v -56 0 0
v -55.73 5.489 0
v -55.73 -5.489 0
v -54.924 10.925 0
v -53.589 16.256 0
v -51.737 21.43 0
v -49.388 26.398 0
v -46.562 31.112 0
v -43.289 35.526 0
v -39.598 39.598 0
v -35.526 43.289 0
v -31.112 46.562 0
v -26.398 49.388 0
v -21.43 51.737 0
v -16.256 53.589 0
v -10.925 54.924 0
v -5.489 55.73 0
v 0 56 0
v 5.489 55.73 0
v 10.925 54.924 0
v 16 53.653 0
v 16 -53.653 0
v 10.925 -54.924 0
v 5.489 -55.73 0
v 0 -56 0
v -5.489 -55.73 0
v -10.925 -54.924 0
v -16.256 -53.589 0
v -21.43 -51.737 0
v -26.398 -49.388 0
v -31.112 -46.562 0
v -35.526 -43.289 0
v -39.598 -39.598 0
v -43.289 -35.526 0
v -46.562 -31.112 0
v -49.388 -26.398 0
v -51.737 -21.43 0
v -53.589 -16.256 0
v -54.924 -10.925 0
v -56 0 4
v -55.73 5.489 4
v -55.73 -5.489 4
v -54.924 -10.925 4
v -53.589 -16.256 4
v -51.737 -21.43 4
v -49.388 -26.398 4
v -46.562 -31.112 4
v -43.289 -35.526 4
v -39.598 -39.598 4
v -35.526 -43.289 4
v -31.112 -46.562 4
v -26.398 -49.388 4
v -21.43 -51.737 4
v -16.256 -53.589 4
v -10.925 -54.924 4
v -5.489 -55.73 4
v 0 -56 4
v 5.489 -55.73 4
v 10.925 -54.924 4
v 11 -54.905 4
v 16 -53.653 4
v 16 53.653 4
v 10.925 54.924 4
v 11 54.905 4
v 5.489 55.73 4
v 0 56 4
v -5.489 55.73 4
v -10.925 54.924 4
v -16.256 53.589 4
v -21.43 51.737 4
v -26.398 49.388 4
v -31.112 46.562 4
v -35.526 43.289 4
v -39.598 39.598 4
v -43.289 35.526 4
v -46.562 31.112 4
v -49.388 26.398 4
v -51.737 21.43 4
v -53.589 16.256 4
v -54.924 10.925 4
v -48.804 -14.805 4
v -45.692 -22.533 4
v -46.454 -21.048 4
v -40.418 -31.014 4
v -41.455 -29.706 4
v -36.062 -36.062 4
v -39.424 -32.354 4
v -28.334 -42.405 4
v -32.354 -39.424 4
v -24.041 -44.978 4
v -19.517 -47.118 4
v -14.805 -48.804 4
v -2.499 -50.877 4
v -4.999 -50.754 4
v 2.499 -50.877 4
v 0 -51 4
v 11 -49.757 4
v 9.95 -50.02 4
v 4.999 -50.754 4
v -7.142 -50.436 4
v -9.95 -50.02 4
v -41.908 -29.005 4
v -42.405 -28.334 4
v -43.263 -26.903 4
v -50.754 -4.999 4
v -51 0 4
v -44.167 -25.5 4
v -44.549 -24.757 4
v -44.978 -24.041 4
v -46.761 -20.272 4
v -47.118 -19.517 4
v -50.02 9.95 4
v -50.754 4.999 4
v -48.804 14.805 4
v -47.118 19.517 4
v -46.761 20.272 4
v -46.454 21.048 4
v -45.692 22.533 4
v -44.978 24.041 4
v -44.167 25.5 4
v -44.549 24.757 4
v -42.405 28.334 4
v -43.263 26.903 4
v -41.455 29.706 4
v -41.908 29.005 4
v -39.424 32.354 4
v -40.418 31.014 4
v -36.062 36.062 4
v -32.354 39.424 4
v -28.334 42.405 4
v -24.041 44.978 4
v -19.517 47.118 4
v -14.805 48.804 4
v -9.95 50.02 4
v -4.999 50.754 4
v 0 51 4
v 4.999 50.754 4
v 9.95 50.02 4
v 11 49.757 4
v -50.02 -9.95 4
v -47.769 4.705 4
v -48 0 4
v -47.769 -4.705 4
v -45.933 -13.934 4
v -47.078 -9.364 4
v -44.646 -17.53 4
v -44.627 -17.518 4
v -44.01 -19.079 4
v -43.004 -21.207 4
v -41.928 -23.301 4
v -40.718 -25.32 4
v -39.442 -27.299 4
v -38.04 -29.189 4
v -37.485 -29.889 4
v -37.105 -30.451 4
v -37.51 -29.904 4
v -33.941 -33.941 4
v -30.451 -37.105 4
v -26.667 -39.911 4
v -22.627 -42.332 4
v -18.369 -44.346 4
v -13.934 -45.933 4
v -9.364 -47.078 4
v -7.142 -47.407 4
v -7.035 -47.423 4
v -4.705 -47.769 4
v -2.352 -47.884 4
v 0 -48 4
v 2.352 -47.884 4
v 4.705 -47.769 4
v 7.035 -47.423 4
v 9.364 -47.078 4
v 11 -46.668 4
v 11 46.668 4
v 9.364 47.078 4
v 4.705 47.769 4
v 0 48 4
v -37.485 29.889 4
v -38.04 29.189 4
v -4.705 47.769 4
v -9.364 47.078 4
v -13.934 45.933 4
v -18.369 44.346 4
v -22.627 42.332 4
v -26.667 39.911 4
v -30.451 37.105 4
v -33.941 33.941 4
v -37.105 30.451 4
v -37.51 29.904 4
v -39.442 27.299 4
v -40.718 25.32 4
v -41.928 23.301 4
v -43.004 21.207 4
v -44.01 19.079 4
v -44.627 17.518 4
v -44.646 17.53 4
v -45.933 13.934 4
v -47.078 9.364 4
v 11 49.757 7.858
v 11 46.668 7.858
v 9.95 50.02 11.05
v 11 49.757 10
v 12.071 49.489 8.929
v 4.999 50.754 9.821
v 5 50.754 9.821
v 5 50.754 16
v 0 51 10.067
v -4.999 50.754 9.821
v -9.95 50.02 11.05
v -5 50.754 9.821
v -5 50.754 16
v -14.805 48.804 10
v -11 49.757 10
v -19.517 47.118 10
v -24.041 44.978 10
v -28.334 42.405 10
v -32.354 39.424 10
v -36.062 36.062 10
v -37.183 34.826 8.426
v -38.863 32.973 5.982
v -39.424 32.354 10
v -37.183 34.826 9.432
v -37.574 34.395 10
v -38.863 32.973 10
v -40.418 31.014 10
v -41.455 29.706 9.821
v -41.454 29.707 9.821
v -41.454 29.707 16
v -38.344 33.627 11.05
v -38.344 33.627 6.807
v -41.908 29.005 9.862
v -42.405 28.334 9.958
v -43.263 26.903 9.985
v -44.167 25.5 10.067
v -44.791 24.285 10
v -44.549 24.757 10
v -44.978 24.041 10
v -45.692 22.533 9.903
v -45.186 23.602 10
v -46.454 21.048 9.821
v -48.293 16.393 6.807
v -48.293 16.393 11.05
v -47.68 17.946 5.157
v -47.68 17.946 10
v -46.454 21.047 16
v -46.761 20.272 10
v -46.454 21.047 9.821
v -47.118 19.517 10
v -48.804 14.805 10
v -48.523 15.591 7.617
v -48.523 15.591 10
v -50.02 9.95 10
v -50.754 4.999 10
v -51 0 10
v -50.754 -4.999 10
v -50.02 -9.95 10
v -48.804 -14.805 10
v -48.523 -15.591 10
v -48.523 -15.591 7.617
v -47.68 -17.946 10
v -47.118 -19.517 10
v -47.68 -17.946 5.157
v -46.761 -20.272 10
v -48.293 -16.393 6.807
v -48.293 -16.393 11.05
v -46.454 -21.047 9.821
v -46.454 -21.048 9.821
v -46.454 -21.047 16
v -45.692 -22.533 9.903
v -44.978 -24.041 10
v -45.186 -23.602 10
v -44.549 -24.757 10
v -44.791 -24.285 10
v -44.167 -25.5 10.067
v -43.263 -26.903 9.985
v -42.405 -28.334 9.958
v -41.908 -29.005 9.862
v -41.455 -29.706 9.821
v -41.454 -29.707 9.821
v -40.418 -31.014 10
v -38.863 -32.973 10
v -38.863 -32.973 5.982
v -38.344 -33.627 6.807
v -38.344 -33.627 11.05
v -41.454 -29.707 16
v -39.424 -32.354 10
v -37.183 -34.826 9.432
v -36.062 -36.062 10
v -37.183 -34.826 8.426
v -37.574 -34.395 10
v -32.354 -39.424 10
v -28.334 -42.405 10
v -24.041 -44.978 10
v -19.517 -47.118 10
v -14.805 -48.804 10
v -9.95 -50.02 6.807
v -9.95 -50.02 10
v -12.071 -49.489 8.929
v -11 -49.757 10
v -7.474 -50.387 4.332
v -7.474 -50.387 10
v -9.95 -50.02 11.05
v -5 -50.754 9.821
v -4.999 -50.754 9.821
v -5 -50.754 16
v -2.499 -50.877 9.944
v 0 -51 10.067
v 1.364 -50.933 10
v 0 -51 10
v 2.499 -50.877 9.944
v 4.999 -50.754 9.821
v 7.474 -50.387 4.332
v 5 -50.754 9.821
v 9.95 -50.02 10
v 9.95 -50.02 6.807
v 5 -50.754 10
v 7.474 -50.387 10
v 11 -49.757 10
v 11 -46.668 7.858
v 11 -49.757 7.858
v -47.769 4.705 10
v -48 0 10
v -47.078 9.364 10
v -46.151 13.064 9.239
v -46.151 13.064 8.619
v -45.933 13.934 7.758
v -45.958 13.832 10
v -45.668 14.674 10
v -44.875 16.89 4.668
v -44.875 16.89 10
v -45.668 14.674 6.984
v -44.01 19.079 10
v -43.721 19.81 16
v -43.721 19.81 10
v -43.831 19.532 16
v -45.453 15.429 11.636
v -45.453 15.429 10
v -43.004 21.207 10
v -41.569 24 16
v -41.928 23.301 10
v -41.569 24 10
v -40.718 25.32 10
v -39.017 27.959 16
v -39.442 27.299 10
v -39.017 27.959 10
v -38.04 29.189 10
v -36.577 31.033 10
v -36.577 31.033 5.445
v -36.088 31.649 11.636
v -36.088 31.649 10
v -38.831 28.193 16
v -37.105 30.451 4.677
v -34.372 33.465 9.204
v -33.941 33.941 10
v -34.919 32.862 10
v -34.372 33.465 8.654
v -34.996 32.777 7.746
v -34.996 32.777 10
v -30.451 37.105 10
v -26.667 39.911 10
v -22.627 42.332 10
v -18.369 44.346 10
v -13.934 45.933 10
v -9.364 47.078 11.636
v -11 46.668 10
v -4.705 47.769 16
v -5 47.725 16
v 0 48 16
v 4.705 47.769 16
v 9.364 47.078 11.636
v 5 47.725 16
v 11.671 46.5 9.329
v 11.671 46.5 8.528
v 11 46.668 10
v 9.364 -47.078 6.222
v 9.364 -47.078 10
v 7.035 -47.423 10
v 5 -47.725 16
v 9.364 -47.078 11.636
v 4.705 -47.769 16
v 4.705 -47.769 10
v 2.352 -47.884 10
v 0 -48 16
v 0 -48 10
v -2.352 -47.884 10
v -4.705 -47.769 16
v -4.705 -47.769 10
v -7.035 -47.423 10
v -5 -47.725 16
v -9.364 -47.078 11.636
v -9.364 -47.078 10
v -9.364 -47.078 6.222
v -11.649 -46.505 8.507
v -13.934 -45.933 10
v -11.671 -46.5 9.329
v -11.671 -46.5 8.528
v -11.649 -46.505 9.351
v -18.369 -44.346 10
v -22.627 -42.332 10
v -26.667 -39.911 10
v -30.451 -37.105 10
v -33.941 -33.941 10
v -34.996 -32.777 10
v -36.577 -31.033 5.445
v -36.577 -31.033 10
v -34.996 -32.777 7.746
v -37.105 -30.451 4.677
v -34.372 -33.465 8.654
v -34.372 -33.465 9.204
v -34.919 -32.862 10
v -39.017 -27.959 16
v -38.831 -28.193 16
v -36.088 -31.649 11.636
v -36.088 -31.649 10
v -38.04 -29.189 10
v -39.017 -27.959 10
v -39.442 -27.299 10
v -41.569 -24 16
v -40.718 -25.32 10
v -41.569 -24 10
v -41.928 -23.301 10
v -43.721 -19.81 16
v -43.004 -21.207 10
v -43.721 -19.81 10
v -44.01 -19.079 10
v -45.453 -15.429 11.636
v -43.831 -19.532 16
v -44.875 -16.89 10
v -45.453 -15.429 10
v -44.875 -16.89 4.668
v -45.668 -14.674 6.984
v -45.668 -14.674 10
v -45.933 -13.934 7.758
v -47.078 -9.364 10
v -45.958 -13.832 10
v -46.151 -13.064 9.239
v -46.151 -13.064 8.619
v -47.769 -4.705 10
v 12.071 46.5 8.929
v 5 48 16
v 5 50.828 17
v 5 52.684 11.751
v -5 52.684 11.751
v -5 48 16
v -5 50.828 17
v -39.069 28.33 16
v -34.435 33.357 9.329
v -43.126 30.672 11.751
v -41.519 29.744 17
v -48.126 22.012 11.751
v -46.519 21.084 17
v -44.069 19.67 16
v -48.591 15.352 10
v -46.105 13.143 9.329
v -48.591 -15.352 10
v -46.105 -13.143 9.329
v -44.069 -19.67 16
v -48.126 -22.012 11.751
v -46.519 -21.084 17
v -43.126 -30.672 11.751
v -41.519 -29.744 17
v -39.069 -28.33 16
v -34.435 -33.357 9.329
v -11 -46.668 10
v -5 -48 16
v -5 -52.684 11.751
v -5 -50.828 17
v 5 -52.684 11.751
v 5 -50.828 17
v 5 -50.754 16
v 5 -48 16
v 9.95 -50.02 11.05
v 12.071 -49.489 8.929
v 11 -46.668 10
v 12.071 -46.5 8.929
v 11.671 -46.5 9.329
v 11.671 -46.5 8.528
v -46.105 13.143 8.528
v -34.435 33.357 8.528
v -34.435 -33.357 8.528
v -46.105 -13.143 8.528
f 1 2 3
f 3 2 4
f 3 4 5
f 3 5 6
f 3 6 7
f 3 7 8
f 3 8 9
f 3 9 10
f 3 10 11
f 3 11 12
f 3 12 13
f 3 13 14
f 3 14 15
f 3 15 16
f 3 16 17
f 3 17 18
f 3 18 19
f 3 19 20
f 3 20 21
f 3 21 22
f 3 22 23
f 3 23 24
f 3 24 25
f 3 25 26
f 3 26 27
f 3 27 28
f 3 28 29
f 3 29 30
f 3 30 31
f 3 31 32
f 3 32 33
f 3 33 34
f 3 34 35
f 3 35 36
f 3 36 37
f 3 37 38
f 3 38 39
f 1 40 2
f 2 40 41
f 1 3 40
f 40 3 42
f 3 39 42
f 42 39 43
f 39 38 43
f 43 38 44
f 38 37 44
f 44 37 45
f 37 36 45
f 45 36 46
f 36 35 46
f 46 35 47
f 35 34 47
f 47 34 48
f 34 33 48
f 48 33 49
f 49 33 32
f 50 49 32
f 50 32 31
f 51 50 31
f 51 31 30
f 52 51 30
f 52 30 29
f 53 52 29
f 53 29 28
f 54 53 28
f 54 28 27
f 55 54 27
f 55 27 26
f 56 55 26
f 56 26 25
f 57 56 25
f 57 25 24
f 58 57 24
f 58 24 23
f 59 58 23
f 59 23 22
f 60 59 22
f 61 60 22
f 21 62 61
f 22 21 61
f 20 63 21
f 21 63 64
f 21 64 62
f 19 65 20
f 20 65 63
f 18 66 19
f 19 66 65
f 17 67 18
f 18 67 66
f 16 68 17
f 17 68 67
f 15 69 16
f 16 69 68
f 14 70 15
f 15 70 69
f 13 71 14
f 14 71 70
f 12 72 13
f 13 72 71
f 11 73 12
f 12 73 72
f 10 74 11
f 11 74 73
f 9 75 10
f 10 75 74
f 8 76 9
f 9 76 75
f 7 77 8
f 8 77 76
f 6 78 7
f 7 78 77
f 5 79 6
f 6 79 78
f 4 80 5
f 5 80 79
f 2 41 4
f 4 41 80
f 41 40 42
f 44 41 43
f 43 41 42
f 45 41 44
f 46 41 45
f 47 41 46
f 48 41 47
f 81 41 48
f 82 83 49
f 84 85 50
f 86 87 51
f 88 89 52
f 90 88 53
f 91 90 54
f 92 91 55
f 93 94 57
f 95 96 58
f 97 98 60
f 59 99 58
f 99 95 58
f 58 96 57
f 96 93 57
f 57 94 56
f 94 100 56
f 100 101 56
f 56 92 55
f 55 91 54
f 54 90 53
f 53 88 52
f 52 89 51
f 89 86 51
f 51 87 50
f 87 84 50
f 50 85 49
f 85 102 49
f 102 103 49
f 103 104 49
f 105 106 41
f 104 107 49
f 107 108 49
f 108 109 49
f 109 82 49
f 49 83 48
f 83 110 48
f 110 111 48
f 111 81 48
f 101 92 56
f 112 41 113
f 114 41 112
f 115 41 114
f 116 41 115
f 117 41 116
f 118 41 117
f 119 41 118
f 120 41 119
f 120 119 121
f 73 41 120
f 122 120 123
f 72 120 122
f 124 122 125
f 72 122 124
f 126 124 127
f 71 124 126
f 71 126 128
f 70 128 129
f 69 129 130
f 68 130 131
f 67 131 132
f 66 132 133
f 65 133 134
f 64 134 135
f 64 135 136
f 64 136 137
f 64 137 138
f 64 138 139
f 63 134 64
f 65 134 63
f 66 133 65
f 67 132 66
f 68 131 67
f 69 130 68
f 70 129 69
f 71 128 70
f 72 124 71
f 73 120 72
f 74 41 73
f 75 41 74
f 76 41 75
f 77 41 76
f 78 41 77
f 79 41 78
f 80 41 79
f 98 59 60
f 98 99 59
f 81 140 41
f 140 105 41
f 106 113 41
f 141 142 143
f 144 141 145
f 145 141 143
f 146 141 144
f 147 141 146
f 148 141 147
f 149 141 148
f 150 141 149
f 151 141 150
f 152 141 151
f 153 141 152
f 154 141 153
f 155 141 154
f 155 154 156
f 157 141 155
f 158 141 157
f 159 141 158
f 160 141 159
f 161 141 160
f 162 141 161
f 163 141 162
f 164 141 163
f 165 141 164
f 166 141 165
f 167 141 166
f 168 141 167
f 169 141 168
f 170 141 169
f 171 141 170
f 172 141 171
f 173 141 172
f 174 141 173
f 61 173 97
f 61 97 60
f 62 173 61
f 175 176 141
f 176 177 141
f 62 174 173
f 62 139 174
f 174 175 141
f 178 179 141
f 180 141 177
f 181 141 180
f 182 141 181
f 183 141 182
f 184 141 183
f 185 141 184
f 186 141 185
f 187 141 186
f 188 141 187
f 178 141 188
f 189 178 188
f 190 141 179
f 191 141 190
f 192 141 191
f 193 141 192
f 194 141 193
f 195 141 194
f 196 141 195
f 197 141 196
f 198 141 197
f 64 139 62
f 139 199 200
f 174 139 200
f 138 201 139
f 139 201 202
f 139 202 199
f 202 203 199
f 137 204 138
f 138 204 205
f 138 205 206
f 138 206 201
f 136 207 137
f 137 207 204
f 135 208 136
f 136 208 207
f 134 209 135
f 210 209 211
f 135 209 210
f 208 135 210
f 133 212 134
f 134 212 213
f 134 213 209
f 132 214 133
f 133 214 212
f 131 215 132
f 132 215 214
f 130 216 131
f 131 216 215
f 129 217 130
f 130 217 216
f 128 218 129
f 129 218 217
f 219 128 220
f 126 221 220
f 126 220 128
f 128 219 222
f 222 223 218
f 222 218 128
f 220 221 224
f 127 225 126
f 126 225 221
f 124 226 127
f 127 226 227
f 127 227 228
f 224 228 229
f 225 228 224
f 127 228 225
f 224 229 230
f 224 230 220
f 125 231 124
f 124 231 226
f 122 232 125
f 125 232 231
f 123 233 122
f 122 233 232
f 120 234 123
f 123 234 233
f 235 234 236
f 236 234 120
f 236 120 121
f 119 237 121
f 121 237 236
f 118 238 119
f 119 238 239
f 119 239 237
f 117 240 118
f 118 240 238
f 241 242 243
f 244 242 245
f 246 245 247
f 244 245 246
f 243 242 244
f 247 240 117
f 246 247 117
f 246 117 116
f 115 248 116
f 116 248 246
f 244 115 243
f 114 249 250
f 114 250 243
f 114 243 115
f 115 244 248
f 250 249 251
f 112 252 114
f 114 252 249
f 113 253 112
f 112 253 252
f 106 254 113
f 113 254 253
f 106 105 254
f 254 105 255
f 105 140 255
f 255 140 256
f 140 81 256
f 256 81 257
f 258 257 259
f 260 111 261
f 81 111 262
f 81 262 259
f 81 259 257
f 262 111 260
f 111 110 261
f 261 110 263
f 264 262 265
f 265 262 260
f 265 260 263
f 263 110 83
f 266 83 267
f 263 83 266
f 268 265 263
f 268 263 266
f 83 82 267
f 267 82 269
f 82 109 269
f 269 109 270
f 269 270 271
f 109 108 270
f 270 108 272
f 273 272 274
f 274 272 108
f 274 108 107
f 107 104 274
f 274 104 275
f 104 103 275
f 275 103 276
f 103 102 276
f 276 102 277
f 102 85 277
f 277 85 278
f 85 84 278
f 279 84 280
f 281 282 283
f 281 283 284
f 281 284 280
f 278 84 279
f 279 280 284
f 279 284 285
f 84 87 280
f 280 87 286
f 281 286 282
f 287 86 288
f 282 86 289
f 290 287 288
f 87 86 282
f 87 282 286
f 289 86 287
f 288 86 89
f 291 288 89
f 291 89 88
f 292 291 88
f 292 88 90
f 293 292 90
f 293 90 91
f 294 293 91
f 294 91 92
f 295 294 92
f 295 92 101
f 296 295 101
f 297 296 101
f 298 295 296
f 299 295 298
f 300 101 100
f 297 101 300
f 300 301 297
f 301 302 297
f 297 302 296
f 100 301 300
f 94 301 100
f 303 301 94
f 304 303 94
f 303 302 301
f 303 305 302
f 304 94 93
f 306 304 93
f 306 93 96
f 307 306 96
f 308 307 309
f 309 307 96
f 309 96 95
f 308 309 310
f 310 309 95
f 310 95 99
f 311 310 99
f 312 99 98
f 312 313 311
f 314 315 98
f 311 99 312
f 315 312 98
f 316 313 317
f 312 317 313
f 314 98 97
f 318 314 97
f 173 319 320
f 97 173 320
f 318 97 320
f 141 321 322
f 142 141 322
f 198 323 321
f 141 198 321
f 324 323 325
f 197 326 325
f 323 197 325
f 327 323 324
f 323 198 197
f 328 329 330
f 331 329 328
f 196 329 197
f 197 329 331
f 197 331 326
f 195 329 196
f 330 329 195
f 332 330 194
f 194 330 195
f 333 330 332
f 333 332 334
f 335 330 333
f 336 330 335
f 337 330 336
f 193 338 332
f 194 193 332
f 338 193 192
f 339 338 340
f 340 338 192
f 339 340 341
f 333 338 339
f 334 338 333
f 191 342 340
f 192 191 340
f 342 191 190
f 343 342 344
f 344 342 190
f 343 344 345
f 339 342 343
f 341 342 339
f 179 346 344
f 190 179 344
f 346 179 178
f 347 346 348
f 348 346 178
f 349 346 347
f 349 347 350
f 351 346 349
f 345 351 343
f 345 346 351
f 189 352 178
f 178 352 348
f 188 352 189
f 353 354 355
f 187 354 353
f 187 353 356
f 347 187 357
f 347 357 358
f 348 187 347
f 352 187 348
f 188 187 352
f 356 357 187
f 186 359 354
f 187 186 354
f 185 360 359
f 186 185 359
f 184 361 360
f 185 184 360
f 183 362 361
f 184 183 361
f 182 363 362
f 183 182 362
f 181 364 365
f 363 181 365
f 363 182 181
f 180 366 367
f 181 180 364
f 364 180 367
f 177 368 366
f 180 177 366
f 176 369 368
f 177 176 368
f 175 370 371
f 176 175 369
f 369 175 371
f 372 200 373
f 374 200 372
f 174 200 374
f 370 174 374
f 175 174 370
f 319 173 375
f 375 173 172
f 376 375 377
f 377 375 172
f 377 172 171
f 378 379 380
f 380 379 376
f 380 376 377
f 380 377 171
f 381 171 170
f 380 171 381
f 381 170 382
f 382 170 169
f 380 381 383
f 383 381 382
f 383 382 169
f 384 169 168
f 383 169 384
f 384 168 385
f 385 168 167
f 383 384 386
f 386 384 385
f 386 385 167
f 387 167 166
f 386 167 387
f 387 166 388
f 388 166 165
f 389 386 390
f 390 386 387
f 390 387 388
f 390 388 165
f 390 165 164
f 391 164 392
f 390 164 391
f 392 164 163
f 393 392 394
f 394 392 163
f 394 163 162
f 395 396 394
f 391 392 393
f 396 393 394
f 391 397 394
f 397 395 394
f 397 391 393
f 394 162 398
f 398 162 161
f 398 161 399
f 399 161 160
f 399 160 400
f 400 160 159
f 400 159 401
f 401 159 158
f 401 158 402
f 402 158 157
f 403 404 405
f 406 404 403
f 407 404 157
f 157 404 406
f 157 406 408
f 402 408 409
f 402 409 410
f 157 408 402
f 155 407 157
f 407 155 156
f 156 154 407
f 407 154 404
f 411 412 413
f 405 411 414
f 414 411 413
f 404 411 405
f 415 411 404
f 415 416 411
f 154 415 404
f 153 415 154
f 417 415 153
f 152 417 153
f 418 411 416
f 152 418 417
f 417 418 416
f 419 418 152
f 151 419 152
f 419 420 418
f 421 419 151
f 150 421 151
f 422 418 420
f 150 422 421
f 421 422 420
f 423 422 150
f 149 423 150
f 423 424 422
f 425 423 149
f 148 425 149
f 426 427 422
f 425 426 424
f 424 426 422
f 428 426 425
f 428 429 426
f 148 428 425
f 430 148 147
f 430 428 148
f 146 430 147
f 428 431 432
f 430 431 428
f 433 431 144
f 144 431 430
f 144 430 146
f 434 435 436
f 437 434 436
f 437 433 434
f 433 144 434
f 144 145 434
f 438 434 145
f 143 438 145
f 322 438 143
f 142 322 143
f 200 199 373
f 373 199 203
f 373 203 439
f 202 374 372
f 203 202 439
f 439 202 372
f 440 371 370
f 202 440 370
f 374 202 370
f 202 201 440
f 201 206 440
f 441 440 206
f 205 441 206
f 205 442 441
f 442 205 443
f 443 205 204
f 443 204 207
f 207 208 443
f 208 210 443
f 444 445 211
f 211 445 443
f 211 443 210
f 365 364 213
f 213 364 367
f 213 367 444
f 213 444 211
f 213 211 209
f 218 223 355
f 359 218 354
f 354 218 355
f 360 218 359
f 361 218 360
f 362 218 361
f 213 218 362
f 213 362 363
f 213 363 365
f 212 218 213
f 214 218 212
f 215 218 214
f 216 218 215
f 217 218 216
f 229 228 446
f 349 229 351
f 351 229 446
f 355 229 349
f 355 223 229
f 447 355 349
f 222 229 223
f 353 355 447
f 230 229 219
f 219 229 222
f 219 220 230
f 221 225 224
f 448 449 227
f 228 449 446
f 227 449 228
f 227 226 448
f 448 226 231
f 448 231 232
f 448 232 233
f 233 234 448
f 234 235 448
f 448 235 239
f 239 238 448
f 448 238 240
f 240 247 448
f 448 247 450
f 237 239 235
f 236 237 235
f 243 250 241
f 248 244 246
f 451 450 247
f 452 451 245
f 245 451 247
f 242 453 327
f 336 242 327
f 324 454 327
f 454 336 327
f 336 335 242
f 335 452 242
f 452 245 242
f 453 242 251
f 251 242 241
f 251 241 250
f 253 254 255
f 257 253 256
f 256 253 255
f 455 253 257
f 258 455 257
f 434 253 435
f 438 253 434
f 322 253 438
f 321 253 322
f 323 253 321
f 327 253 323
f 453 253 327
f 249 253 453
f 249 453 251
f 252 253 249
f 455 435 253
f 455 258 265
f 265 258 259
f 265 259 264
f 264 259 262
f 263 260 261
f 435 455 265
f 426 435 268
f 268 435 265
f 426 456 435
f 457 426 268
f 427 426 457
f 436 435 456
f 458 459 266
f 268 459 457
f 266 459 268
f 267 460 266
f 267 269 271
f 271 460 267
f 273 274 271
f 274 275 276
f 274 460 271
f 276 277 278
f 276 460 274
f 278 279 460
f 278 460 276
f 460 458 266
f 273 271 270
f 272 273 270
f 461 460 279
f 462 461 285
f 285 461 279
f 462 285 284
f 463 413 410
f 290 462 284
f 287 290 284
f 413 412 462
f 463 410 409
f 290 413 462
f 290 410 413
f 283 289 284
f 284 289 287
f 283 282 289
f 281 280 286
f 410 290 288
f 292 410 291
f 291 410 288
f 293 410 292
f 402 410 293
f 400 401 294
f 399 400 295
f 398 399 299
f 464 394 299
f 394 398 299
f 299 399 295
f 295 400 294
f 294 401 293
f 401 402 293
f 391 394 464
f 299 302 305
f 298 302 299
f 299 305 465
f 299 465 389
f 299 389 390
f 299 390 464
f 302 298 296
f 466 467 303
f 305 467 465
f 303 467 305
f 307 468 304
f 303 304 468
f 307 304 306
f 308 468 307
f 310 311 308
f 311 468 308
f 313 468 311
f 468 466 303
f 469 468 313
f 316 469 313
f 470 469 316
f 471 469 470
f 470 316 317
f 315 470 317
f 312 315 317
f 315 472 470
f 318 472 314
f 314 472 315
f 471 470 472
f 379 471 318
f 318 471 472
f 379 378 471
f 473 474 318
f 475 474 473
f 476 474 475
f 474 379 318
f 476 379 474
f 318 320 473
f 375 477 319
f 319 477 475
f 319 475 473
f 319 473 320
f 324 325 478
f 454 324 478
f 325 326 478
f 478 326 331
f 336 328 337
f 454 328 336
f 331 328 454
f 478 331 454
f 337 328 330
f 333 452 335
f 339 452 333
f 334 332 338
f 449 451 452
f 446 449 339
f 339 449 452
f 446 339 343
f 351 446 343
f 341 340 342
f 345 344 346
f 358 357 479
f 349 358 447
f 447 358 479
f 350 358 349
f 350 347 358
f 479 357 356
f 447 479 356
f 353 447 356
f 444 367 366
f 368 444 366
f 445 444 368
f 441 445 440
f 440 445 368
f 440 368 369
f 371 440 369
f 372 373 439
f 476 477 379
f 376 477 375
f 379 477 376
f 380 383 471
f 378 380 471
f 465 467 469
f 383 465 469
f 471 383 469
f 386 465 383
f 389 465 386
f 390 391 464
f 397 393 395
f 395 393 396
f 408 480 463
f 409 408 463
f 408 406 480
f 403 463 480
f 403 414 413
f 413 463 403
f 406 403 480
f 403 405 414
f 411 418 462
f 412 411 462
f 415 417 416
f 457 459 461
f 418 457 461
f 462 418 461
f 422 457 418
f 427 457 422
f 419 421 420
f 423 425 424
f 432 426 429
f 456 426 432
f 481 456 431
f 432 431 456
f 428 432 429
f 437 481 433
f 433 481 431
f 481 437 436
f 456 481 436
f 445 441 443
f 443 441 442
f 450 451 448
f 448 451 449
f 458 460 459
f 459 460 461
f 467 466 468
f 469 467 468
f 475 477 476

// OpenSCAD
// Boat desck drain cover

hole_r   = 51;
hole_h   = 62;
hole_t   = 6;
cover_t  = 10;
flange_r = 56;
clip_t   = 3;
clip_w   = 10;
clip_h   = 6;
hook_t   = 5;

module cover_inner_cylinder()
{
  difference()
  {
    cylinder(r=hole_r,h=cover_t+clip_h,$fn=64);
    cylinder(r=hole_r-clip_t,h=cover_t+clip_h,$fn=64);
  }
}

module cover_flap()
{
  difference()
  {
    union()
    {
      cylinder(r=hole_r,h=cover_t,$fn=64);
      cylinder(r=flange_r,h=cover_t-hole_t,$fn=64);
    }
    translate([0,0,cover_t-hole_t])
    {
      difference()
      {
        cylinder(r=hole_r-clip_t,h=cover_t,$fn=64);
        //cylinder(r=(hole_r-clip_t)-(flange_r-hole_r),h=cover_t);
      }
    }
    union()
    {
      translate([hole_h-hole_r,-flange_r,cover_t-hole_t])
        cube([flange_r, flange_r*2, cover_t*2]);
      translate([(hole_h-hole_r)+(flange_r-hole_r),-flange_r,-cover_t*0.5])
        cube([flange_r, flange_r*2, cover_t*2]);
    }
  }
}

module cover_clip(a)
{
  ha = asin((hook_t-clip_t)/clip_h);
  hd = 1;
  rotate([0,0,a])
  {
    intersection()
    {
      cover_inner_cylinder();
      translate([-clip_w*0.5,hole_r-clip_t*1.5,0])
      {
        cube([clip_w,clip_t*2,cover_t+clip_h]);  // Main peg
        translate([0,0,cover_t+clip_h])
          rotate([0,45,0])
            translate([0,0,-cover_t])
              cube([clip_w,clip_t*2,cover_t]);
        translate([clip_w,0,cover_t+clip_h])
          rotate([0,-45,0])
            translate([-clip_w,0,-cover_t])
              cube([clip_w,clip_t*2,cover_t]);
      }
    }
    translate([-clip_w*0.5,hole_r-clip_t,0])
      translate([0,0,cover_t+clip_h])
        rotate([ha,0,0])
          translate([0,0,-(clip_h+hd)])
            difference()
            {
              cube([clip_w,clip_t,clip_h+hd]);
              translate([-1,0,0])
                rotate([-45-ha,0,0])
                  cube([clip_w+2,clip_t,clip_h]);
            }
  }
}

module cover()
{
  cover_flap();
  cover_clip(0);
  cover_clip(60);
  cover_clip(120);
  cover_clip(180);
}

cover();

//cover_clip(0);
